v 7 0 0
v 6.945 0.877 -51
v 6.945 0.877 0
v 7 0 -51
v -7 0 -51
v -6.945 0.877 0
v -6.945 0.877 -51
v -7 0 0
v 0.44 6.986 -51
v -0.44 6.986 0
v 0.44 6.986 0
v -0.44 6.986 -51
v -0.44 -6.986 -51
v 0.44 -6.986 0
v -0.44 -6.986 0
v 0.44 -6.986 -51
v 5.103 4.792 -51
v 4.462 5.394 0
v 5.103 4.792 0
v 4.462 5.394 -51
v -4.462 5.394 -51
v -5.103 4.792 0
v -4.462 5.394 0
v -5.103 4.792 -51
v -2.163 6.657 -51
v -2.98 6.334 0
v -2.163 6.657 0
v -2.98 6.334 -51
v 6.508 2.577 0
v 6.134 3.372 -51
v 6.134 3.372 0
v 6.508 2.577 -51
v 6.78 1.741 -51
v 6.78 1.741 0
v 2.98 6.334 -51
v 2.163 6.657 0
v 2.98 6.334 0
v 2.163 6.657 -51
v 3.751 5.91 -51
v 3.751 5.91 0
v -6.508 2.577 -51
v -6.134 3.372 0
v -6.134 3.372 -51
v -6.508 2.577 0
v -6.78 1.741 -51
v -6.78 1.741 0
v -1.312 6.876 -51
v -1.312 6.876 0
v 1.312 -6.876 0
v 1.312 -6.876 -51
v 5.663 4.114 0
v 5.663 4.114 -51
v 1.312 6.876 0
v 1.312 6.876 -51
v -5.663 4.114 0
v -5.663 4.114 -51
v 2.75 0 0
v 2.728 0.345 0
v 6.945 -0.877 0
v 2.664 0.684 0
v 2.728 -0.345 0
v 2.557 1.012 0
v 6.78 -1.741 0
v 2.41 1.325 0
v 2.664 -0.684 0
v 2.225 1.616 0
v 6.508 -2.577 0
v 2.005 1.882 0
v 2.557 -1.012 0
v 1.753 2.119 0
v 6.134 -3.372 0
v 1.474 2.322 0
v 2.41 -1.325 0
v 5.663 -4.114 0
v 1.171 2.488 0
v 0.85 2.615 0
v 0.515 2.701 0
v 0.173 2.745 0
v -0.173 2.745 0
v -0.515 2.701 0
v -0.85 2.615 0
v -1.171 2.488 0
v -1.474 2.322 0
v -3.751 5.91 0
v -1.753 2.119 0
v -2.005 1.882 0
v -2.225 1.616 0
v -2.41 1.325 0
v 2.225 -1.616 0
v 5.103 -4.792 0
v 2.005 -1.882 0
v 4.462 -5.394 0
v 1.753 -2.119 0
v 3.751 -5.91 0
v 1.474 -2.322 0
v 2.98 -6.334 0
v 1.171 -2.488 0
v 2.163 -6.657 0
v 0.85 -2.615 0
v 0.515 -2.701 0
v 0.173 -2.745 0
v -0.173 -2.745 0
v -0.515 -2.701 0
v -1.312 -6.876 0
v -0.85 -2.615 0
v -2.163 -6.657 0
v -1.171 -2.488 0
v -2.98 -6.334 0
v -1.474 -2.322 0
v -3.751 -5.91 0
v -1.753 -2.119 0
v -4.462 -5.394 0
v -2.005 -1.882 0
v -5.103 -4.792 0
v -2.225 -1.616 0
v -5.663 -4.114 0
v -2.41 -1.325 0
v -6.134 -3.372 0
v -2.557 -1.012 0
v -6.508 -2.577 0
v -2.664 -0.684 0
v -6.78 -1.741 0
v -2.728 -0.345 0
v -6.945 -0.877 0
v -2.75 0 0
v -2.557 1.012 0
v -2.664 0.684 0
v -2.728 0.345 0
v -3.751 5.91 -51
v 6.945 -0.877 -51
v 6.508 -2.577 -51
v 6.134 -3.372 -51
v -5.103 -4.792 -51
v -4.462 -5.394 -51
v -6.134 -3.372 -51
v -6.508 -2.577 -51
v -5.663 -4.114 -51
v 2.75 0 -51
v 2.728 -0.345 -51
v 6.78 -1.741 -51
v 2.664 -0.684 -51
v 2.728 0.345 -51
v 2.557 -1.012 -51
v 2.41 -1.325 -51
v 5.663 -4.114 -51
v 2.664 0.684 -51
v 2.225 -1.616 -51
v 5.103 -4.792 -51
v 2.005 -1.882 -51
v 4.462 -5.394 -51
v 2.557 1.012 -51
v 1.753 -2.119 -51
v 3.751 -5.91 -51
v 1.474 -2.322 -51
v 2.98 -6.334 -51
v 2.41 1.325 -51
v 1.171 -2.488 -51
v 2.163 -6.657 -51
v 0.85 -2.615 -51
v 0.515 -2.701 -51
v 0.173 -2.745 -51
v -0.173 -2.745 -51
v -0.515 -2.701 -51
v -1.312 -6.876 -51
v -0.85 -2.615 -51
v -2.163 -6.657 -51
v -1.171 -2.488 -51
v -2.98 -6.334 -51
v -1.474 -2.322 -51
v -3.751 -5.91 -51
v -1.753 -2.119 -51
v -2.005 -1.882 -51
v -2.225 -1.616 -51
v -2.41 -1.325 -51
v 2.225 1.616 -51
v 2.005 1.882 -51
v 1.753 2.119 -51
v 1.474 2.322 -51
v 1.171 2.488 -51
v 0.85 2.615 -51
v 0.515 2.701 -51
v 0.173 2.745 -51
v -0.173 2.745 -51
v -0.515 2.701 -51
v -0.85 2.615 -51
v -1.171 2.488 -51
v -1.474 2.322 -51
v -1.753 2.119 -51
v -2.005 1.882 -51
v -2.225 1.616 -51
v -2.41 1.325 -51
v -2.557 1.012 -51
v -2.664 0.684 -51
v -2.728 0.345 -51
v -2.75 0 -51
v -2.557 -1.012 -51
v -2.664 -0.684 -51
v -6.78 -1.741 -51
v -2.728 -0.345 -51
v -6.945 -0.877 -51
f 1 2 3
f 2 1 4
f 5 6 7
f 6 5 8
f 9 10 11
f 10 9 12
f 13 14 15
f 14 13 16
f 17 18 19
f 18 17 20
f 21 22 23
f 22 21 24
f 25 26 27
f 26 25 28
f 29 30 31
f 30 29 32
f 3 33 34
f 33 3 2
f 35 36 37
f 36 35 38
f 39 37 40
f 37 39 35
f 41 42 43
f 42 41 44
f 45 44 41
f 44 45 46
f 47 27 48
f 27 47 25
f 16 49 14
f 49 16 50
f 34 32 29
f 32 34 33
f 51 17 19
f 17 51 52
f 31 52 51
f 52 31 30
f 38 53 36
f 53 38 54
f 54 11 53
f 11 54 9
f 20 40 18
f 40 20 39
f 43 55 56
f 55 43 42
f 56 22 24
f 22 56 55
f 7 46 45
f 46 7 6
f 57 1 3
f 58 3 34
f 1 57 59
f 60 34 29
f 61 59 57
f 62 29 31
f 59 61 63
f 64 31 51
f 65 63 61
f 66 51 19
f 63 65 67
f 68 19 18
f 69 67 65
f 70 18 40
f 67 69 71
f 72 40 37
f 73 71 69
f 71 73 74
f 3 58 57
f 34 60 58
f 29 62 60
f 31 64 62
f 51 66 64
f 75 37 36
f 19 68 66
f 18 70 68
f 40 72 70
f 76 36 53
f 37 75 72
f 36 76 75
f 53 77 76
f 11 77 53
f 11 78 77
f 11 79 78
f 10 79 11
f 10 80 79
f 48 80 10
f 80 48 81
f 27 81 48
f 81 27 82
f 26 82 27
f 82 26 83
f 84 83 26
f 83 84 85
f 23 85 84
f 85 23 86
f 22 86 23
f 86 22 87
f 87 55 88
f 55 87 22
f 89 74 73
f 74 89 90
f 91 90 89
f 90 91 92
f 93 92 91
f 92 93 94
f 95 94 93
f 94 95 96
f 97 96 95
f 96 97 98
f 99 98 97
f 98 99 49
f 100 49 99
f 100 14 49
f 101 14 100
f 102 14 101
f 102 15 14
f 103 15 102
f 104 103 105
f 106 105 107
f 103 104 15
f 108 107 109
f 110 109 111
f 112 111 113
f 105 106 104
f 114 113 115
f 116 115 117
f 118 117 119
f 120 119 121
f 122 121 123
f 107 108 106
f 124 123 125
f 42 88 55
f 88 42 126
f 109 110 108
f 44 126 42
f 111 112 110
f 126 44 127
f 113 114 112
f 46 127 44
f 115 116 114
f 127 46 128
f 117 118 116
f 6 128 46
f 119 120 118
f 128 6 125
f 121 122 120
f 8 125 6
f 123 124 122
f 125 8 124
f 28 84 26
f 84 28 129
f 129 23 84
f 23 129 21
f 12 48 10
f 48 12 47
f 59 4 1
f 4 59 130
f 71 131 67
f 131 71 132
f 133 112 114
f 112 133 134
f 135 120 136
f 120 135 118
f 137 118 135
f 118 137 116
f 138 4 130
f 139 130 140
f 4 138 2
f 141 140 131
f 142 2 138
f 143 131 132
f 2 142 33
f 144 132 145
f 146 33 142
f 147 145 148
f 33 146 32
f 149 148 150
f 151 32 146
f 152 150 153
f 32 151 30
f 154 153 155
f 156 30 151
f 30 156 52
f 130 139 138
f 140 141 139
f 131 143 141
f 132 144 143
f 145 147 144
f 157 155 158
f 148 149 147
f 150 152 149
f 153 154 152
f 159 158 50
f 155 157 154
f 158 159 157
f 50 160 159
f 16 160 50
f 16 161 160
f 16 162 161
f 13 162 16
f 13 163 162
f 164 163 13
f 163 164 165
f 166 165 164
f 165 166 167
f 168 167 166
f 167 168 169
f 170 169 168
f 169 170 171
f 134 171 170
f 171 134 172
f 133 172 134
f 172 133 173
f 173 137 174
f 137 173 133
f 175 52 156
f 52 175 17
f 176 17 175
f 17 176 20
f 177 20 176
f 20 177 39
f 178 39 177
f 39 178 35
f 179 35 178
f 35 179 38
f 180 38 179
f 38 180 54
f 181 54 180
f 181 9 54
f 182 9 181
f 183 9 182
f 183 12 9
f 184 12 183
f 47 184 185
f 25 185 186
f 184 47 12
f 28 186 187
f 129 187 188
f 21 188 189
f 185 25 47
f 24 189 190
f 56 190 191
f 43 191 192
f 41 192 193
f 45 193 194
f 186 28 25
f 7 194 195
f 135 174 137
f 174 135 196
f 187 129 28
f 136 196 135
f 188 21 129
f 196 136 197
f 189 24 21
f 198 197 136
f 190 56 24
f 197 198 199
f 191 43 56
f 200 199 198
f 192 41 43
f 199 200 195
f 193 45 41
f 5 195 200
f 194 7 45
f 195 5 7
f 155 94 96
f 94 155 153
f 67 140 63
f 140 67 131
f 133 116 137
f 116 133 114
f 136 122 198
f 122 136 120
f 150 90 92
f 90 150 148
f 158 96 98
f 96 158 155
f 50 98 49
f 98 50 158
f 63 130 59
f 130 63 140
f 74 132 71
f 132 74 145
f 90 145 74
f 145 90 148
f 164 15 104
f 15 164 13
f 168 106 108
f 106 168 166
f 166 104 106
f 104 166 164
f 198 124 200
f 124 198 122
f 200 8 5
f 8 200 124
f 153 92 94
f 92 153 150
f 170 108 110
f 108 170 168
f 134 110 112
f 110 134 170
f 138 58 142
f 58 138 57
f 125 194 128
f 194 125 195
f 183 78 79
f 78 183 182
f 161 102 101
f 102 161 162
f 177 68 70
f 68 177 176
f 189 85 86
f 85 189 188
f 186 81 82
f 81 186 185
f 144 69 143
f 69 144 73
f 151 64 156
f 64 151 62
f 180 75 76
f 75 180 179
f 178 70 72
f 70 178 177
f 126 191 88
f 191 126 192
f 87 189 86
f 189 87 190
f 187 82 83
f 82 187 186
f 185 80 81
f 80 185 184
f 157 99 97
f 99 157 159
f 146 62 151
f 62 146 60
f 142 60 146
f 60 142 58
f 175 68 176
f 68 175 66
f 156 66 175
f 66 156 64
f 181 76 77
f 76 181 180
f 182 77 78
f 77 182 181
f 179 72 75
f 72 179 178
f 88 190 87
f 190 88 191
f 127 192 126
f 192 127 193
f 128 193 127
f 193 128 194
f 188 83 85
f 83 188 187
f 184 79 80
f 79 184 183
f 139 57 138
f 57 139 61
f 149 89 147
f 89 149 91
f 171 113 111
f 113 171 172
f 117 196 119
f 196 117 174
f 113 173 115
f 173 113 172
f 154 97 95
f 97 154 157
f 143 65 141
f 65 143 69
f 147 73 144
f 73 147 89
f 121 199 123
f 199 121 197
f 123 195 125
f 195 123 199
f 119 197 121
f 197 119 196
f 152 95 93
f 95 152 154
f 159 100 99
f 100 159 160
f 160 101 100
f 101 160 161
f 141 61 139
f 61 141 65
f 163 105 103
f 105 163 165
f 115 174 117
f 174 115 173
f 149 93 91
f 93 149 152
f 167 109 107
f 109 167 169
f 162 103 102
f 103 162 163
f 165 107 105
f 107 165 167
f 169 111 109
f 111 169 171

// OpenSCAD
$fn = 50;


difference() {
	union() {
		translate(v = [0, 0, -51.0000000000]) {
			cylinder(h = 51, r = 7.0000000000);
		}
		cylinder(h = 0, r = 17.0000000000);
	}
	union() {
		#translate(v = [0, 0, -51]) {
			cylinder(h = 51, r = 2.7500000000);
		}
	}
}
